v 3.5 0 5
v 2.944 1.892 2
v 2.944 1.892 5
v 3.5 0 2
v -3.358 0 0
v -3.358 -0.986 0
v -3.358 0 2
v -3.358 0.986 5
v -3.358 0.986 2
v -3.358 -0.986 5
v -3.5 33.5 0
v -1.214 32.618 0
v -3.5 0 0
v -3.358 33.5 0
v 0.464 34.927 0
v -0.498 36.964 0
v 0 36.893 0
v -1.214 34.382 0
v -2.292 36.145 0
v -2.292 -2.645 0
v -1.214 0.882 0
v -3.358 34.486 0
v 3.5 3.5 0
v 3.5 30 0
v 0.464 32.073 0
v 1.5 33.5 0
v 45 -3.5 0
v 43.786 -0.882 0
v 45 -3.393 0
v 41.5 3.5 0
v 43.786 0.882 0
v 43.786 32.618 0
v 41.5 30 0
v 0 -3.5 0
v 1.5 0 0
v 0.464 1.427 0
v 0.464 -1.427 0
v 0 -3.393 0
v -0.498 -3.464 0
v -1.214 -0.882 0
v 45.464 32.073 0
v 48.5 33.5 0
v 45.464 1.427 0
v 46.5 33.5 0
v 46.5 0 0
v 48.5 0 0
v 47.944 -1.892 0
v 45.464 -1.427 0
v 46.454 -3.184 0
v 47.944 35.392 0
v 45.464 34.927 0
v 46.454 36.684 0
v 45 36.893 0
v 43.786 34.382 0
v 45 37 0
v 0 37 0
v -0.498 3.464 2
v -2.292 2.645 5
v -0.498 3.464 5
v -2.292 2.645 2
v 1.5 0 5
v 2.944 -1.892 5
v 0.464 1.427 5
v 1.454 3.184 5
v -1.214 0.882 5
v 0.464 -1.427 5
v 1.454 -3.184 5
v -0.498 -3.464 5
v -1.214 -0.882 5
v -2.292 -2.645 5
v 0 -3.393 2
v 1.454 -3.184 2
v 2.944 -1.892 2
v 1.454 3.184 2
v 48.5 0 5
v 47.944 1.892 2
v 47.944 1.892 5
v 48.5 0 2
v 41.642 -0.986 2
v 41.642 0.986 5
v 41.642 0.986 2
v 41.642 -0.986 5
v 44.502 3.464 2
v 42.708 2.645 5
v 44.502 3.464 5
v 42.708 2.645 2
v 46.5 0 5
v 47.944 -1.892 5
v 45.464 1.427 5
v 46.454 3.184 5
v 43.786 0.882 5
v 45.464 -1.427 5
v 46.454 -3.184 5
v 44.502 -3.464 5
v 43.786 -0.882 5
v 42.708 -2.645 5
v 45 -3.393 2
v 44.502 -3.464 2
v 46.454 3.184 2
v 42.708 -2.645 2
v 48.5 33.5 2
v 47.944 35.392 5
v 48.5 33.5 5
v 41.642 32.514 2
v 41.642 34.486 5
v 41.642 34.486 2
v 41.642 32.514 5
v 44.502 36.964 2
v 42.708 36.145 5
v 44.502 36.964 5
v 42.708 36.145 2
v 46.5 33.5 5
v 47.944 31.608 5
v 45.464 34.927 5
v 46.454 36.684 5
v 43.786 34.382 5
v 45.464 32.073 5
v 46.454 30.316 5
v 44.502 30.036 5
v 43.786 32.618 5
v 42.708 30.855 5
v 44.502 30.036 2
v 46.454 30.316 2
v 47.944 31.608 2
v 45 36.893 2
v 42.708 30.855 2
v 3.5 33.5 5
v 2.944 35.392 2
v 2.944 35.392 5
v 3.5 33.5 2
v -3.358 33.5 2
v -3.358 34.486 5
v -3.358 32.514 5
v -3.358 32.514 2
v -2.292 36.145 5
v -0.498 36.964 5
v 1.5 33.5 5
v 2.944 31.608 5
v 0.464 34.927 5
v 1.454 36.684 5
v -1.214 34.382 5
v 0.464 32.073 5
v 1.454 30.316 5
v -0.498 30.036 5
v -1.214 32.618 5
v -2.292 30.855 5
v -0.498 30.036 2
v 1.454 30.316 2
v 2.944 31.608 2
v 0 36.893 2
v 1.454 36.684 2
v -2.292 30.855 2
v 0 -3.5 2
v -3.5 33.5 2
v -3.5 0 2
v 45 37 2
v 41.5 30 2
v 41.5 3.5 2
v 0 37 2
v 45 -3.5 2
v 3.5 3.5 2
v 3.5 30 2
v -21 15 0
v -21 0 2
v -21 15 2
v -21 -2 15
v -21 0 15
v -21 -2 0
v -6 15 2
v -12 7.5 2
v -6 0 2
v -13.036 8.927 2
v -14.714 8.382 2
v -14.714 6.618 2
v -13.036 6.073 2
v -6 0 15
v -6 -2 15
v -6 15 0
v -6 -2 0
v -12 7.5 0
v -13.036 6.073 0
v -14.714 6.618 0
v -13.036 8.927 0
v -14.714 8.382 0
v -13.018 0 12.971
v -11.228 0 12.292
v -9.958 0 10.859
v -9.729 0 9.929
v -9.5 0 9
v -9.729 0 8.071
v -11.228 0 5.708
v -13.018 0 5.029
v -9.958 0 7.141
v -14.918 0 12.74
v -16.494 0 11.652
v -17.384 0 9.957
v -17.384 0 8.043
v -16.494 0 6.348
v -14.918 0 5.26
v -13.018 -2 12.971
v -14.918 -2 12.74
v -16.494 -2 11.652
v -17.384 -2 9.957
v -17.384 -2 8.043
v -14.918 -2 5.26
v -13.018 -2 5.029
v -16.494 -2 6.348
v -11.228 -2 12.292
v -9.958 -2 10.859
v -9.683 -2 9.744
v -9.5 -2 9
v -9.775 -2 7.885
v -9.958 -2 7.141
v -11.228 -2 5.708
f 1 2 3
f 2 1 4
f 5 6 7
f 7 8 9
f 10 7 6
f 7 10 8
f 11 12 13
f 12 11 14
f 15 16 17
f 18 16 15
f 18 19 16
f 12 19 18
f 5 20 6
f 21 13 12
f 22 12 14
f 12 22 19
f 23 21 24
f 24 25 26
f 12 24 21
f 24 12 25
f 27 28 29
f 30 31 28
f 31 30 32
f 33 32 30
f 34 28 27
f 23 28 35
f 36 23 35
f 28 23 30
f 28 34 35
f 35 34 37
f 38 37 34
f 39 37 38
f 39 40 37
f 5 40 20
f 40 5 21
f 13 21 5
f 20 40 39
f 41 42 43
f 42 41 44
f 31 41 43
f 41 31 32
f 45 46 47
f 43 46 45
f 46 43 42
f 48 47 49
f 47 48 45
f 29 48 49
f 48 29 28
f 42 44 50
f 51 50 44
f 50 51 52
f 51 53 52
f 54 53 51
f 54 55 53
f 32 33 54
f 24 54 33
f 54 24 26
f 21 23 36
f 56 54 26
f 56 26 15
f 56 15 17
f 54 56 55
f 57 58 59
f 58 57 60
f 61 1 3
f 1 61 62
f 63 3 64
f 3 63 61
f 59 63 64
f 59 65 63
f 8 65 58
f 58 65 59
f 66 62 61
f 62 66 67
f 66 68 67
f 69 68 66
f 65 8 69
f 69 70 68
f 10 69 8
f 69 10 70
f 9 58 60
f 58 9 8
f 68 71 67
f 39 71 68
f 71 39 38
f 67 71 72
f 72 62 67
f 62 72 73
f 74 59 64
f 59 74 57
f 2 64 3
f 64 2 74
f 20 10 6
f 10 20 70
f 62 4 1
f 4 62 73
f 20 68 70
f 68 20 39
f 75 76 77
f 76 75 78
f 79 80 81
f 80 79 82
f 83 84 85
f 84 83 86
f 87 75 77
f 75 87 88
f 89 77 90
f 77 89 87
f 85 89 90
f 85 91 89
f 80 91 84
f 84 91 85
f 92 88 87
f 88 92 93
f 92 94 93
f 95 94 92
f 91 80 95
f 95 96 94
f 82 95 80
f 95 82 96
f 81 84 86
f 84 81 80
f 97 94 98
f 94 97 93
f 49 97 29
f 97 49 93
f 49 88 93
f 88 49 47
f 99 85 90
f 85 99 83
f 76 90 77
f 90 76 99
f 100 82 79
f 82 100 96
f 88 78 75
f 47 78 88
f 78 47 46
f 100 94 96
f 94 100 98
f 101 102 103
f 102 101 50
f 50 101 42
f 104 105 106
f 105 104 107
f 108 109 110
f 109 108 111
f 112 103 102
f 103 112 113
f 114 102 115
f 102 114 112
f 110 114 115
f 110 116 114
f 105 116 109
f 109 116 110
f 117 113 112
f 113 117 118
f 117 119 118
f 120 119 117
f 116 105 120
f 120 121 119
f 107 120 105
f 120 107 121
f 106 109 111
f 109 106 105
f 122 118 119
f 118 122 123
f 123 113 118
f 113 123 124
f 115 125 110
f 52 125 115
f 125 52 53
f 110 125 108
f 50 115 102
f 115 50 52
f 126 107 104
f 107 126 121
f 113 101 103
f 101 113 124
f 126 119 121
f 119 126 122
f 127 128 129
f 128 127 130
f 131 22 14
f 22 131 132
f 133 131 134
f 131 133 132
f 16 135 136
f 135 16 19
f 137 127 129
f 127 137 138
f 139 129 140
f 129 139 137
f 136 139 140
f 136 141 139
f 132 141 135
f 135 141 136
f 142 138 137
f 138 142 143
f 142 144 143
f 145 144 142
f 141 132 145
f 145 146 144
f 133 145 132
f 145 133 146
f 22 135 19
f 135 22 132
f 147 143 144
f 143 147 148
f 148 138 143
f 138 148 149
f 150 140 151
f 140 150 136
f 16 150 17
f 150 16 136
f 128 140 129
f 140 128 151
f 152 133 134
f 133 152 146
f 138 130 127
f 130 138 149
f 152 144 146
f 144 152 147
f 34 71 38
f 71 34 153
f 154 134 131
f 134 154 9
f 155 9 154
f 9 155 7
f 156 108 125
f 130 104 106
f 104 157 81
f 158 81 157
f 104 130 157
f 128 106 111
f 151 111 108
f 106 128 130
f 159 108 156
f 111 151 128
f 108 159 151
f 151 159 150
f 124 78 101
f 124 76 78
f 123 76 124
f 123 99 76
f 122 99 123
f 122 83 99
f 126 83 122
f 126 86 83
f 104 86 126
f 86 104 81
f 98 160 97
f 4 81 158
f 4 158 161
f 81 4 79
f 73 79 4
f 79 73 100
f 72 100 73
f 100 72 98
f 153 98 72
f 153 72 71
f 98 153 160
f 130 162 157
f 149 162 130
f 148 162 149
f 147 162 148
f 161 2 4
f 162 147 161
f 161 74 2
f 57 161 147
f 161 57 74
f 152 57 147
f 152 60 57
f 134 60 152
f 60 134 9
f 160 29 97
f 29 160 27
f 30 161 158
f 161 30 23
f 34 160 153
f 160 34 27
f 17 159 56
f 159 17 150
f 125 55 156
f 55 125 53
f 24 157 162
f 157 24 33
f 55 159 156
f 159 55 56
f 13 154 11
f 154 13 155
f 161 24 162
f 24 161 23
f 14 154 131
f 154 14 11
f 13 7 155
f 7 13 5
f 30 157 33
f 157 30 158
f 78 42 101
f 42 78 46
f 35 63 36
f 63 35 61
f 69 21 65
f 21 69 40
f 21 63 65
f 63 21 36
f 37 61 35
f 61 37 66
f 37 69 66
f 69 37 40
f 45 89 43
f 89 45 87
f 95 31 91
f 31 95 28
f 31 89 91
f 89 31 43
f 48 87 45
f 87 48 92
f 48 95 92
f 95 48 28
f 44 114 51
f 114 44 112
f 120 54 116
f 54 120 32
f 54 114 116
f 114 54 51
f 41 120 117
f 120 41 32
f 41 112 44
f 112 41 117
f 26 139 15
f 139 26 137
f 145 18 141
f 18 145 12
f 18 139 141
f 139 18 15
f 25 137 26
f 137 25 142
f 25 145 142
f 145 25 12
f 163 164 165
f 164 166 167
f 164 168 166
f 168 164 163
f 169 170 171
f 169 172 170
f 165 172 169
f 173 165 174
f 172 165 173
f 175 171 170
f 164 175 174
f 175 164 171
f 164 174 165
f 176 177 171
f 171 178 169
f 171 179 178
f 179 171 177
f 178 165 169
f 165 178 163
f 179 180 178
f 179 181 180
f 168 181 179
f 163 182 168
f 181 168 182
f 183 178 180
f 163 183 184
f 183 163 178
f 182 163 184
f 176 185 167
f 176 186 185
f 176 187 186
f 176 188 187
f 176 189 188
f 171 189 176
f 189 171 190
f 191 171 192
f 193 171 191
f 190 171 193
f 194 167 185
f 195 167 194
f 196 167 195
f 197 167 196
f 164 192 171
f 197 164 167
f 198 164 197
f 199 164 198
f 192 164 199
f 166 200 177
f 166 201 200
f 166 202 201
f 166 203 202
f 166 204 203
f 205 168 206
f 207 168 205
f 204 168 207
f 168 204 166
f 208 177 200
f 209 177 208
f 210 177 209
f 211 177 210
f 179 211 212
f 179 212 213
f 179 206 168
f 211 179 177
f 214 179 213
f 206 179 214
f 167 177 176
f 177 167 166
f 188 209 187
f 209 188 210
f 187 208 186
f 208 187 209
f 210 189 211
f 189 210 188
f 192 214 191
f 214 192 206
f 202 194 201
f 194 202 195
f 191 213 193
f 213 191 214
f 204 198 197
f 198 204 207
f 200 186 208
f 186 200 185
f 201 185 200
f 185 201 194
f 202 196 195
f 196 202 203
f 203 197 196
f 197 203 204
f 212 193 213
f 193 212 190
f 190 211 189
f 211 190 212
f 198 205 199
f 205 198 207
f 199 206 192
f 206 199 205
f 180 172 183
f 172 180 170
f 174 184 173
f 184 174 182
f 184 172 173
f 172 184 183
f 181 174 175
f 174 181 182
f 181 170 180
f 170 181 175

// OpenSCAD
//Weather monitor and pump switch esp8266 
//simple bracket
// ?more complicated base with screws

b = [15,15,2]; //base
s = b + [0,0,0]; //side - same as base but a big higher
r=4;  //2.5mm socket  ?8mm hole

sh = [[10,10], [10,40], [50,50]];  //screw holes


module simple_bracket(){
difference(){
    union() {
        cube(b);  //base
        rotate([90,0,0]) cube(s); //side
    }
    translate([s[0]/2,0, s[1]-r-2])rotate([90,0,0])cylinder(r=r,h=20,center=true); //socket hle
    
    translate(b/2)cylinder(r=1.5,h=20,center=true); // bolt hole for base
    
}
}

module relay_holder(){
b = 1.5;
t = 2;
l = 42+3;
w = 30.5+3;
h = 5;

relay = [[0,0,h/2],[l,0,h/2],[l,w,h/2],[0,w,h/2]];

difference(){
    union(){
        for (i = relay) translate(i)cylinder(r=b+t,h=h,center=true);      
translate([0,-b-t,0])cube([l,b+b+t+t,t]);
translate([0,w-b-t,0])cube([l,b+b+t+t,t]);
translate([-b-t,0,0])cube([b+b+t+t,w,t]);
translate([l-b-t,0,0])cube([b+b+t+t,w,t]);
    }
    for (i = relay) translate(i)cylinder(r=b,h=2*h,center=true);    
    }  
}

relay_holder();
translate([-21,0,0])simple_bracket();
